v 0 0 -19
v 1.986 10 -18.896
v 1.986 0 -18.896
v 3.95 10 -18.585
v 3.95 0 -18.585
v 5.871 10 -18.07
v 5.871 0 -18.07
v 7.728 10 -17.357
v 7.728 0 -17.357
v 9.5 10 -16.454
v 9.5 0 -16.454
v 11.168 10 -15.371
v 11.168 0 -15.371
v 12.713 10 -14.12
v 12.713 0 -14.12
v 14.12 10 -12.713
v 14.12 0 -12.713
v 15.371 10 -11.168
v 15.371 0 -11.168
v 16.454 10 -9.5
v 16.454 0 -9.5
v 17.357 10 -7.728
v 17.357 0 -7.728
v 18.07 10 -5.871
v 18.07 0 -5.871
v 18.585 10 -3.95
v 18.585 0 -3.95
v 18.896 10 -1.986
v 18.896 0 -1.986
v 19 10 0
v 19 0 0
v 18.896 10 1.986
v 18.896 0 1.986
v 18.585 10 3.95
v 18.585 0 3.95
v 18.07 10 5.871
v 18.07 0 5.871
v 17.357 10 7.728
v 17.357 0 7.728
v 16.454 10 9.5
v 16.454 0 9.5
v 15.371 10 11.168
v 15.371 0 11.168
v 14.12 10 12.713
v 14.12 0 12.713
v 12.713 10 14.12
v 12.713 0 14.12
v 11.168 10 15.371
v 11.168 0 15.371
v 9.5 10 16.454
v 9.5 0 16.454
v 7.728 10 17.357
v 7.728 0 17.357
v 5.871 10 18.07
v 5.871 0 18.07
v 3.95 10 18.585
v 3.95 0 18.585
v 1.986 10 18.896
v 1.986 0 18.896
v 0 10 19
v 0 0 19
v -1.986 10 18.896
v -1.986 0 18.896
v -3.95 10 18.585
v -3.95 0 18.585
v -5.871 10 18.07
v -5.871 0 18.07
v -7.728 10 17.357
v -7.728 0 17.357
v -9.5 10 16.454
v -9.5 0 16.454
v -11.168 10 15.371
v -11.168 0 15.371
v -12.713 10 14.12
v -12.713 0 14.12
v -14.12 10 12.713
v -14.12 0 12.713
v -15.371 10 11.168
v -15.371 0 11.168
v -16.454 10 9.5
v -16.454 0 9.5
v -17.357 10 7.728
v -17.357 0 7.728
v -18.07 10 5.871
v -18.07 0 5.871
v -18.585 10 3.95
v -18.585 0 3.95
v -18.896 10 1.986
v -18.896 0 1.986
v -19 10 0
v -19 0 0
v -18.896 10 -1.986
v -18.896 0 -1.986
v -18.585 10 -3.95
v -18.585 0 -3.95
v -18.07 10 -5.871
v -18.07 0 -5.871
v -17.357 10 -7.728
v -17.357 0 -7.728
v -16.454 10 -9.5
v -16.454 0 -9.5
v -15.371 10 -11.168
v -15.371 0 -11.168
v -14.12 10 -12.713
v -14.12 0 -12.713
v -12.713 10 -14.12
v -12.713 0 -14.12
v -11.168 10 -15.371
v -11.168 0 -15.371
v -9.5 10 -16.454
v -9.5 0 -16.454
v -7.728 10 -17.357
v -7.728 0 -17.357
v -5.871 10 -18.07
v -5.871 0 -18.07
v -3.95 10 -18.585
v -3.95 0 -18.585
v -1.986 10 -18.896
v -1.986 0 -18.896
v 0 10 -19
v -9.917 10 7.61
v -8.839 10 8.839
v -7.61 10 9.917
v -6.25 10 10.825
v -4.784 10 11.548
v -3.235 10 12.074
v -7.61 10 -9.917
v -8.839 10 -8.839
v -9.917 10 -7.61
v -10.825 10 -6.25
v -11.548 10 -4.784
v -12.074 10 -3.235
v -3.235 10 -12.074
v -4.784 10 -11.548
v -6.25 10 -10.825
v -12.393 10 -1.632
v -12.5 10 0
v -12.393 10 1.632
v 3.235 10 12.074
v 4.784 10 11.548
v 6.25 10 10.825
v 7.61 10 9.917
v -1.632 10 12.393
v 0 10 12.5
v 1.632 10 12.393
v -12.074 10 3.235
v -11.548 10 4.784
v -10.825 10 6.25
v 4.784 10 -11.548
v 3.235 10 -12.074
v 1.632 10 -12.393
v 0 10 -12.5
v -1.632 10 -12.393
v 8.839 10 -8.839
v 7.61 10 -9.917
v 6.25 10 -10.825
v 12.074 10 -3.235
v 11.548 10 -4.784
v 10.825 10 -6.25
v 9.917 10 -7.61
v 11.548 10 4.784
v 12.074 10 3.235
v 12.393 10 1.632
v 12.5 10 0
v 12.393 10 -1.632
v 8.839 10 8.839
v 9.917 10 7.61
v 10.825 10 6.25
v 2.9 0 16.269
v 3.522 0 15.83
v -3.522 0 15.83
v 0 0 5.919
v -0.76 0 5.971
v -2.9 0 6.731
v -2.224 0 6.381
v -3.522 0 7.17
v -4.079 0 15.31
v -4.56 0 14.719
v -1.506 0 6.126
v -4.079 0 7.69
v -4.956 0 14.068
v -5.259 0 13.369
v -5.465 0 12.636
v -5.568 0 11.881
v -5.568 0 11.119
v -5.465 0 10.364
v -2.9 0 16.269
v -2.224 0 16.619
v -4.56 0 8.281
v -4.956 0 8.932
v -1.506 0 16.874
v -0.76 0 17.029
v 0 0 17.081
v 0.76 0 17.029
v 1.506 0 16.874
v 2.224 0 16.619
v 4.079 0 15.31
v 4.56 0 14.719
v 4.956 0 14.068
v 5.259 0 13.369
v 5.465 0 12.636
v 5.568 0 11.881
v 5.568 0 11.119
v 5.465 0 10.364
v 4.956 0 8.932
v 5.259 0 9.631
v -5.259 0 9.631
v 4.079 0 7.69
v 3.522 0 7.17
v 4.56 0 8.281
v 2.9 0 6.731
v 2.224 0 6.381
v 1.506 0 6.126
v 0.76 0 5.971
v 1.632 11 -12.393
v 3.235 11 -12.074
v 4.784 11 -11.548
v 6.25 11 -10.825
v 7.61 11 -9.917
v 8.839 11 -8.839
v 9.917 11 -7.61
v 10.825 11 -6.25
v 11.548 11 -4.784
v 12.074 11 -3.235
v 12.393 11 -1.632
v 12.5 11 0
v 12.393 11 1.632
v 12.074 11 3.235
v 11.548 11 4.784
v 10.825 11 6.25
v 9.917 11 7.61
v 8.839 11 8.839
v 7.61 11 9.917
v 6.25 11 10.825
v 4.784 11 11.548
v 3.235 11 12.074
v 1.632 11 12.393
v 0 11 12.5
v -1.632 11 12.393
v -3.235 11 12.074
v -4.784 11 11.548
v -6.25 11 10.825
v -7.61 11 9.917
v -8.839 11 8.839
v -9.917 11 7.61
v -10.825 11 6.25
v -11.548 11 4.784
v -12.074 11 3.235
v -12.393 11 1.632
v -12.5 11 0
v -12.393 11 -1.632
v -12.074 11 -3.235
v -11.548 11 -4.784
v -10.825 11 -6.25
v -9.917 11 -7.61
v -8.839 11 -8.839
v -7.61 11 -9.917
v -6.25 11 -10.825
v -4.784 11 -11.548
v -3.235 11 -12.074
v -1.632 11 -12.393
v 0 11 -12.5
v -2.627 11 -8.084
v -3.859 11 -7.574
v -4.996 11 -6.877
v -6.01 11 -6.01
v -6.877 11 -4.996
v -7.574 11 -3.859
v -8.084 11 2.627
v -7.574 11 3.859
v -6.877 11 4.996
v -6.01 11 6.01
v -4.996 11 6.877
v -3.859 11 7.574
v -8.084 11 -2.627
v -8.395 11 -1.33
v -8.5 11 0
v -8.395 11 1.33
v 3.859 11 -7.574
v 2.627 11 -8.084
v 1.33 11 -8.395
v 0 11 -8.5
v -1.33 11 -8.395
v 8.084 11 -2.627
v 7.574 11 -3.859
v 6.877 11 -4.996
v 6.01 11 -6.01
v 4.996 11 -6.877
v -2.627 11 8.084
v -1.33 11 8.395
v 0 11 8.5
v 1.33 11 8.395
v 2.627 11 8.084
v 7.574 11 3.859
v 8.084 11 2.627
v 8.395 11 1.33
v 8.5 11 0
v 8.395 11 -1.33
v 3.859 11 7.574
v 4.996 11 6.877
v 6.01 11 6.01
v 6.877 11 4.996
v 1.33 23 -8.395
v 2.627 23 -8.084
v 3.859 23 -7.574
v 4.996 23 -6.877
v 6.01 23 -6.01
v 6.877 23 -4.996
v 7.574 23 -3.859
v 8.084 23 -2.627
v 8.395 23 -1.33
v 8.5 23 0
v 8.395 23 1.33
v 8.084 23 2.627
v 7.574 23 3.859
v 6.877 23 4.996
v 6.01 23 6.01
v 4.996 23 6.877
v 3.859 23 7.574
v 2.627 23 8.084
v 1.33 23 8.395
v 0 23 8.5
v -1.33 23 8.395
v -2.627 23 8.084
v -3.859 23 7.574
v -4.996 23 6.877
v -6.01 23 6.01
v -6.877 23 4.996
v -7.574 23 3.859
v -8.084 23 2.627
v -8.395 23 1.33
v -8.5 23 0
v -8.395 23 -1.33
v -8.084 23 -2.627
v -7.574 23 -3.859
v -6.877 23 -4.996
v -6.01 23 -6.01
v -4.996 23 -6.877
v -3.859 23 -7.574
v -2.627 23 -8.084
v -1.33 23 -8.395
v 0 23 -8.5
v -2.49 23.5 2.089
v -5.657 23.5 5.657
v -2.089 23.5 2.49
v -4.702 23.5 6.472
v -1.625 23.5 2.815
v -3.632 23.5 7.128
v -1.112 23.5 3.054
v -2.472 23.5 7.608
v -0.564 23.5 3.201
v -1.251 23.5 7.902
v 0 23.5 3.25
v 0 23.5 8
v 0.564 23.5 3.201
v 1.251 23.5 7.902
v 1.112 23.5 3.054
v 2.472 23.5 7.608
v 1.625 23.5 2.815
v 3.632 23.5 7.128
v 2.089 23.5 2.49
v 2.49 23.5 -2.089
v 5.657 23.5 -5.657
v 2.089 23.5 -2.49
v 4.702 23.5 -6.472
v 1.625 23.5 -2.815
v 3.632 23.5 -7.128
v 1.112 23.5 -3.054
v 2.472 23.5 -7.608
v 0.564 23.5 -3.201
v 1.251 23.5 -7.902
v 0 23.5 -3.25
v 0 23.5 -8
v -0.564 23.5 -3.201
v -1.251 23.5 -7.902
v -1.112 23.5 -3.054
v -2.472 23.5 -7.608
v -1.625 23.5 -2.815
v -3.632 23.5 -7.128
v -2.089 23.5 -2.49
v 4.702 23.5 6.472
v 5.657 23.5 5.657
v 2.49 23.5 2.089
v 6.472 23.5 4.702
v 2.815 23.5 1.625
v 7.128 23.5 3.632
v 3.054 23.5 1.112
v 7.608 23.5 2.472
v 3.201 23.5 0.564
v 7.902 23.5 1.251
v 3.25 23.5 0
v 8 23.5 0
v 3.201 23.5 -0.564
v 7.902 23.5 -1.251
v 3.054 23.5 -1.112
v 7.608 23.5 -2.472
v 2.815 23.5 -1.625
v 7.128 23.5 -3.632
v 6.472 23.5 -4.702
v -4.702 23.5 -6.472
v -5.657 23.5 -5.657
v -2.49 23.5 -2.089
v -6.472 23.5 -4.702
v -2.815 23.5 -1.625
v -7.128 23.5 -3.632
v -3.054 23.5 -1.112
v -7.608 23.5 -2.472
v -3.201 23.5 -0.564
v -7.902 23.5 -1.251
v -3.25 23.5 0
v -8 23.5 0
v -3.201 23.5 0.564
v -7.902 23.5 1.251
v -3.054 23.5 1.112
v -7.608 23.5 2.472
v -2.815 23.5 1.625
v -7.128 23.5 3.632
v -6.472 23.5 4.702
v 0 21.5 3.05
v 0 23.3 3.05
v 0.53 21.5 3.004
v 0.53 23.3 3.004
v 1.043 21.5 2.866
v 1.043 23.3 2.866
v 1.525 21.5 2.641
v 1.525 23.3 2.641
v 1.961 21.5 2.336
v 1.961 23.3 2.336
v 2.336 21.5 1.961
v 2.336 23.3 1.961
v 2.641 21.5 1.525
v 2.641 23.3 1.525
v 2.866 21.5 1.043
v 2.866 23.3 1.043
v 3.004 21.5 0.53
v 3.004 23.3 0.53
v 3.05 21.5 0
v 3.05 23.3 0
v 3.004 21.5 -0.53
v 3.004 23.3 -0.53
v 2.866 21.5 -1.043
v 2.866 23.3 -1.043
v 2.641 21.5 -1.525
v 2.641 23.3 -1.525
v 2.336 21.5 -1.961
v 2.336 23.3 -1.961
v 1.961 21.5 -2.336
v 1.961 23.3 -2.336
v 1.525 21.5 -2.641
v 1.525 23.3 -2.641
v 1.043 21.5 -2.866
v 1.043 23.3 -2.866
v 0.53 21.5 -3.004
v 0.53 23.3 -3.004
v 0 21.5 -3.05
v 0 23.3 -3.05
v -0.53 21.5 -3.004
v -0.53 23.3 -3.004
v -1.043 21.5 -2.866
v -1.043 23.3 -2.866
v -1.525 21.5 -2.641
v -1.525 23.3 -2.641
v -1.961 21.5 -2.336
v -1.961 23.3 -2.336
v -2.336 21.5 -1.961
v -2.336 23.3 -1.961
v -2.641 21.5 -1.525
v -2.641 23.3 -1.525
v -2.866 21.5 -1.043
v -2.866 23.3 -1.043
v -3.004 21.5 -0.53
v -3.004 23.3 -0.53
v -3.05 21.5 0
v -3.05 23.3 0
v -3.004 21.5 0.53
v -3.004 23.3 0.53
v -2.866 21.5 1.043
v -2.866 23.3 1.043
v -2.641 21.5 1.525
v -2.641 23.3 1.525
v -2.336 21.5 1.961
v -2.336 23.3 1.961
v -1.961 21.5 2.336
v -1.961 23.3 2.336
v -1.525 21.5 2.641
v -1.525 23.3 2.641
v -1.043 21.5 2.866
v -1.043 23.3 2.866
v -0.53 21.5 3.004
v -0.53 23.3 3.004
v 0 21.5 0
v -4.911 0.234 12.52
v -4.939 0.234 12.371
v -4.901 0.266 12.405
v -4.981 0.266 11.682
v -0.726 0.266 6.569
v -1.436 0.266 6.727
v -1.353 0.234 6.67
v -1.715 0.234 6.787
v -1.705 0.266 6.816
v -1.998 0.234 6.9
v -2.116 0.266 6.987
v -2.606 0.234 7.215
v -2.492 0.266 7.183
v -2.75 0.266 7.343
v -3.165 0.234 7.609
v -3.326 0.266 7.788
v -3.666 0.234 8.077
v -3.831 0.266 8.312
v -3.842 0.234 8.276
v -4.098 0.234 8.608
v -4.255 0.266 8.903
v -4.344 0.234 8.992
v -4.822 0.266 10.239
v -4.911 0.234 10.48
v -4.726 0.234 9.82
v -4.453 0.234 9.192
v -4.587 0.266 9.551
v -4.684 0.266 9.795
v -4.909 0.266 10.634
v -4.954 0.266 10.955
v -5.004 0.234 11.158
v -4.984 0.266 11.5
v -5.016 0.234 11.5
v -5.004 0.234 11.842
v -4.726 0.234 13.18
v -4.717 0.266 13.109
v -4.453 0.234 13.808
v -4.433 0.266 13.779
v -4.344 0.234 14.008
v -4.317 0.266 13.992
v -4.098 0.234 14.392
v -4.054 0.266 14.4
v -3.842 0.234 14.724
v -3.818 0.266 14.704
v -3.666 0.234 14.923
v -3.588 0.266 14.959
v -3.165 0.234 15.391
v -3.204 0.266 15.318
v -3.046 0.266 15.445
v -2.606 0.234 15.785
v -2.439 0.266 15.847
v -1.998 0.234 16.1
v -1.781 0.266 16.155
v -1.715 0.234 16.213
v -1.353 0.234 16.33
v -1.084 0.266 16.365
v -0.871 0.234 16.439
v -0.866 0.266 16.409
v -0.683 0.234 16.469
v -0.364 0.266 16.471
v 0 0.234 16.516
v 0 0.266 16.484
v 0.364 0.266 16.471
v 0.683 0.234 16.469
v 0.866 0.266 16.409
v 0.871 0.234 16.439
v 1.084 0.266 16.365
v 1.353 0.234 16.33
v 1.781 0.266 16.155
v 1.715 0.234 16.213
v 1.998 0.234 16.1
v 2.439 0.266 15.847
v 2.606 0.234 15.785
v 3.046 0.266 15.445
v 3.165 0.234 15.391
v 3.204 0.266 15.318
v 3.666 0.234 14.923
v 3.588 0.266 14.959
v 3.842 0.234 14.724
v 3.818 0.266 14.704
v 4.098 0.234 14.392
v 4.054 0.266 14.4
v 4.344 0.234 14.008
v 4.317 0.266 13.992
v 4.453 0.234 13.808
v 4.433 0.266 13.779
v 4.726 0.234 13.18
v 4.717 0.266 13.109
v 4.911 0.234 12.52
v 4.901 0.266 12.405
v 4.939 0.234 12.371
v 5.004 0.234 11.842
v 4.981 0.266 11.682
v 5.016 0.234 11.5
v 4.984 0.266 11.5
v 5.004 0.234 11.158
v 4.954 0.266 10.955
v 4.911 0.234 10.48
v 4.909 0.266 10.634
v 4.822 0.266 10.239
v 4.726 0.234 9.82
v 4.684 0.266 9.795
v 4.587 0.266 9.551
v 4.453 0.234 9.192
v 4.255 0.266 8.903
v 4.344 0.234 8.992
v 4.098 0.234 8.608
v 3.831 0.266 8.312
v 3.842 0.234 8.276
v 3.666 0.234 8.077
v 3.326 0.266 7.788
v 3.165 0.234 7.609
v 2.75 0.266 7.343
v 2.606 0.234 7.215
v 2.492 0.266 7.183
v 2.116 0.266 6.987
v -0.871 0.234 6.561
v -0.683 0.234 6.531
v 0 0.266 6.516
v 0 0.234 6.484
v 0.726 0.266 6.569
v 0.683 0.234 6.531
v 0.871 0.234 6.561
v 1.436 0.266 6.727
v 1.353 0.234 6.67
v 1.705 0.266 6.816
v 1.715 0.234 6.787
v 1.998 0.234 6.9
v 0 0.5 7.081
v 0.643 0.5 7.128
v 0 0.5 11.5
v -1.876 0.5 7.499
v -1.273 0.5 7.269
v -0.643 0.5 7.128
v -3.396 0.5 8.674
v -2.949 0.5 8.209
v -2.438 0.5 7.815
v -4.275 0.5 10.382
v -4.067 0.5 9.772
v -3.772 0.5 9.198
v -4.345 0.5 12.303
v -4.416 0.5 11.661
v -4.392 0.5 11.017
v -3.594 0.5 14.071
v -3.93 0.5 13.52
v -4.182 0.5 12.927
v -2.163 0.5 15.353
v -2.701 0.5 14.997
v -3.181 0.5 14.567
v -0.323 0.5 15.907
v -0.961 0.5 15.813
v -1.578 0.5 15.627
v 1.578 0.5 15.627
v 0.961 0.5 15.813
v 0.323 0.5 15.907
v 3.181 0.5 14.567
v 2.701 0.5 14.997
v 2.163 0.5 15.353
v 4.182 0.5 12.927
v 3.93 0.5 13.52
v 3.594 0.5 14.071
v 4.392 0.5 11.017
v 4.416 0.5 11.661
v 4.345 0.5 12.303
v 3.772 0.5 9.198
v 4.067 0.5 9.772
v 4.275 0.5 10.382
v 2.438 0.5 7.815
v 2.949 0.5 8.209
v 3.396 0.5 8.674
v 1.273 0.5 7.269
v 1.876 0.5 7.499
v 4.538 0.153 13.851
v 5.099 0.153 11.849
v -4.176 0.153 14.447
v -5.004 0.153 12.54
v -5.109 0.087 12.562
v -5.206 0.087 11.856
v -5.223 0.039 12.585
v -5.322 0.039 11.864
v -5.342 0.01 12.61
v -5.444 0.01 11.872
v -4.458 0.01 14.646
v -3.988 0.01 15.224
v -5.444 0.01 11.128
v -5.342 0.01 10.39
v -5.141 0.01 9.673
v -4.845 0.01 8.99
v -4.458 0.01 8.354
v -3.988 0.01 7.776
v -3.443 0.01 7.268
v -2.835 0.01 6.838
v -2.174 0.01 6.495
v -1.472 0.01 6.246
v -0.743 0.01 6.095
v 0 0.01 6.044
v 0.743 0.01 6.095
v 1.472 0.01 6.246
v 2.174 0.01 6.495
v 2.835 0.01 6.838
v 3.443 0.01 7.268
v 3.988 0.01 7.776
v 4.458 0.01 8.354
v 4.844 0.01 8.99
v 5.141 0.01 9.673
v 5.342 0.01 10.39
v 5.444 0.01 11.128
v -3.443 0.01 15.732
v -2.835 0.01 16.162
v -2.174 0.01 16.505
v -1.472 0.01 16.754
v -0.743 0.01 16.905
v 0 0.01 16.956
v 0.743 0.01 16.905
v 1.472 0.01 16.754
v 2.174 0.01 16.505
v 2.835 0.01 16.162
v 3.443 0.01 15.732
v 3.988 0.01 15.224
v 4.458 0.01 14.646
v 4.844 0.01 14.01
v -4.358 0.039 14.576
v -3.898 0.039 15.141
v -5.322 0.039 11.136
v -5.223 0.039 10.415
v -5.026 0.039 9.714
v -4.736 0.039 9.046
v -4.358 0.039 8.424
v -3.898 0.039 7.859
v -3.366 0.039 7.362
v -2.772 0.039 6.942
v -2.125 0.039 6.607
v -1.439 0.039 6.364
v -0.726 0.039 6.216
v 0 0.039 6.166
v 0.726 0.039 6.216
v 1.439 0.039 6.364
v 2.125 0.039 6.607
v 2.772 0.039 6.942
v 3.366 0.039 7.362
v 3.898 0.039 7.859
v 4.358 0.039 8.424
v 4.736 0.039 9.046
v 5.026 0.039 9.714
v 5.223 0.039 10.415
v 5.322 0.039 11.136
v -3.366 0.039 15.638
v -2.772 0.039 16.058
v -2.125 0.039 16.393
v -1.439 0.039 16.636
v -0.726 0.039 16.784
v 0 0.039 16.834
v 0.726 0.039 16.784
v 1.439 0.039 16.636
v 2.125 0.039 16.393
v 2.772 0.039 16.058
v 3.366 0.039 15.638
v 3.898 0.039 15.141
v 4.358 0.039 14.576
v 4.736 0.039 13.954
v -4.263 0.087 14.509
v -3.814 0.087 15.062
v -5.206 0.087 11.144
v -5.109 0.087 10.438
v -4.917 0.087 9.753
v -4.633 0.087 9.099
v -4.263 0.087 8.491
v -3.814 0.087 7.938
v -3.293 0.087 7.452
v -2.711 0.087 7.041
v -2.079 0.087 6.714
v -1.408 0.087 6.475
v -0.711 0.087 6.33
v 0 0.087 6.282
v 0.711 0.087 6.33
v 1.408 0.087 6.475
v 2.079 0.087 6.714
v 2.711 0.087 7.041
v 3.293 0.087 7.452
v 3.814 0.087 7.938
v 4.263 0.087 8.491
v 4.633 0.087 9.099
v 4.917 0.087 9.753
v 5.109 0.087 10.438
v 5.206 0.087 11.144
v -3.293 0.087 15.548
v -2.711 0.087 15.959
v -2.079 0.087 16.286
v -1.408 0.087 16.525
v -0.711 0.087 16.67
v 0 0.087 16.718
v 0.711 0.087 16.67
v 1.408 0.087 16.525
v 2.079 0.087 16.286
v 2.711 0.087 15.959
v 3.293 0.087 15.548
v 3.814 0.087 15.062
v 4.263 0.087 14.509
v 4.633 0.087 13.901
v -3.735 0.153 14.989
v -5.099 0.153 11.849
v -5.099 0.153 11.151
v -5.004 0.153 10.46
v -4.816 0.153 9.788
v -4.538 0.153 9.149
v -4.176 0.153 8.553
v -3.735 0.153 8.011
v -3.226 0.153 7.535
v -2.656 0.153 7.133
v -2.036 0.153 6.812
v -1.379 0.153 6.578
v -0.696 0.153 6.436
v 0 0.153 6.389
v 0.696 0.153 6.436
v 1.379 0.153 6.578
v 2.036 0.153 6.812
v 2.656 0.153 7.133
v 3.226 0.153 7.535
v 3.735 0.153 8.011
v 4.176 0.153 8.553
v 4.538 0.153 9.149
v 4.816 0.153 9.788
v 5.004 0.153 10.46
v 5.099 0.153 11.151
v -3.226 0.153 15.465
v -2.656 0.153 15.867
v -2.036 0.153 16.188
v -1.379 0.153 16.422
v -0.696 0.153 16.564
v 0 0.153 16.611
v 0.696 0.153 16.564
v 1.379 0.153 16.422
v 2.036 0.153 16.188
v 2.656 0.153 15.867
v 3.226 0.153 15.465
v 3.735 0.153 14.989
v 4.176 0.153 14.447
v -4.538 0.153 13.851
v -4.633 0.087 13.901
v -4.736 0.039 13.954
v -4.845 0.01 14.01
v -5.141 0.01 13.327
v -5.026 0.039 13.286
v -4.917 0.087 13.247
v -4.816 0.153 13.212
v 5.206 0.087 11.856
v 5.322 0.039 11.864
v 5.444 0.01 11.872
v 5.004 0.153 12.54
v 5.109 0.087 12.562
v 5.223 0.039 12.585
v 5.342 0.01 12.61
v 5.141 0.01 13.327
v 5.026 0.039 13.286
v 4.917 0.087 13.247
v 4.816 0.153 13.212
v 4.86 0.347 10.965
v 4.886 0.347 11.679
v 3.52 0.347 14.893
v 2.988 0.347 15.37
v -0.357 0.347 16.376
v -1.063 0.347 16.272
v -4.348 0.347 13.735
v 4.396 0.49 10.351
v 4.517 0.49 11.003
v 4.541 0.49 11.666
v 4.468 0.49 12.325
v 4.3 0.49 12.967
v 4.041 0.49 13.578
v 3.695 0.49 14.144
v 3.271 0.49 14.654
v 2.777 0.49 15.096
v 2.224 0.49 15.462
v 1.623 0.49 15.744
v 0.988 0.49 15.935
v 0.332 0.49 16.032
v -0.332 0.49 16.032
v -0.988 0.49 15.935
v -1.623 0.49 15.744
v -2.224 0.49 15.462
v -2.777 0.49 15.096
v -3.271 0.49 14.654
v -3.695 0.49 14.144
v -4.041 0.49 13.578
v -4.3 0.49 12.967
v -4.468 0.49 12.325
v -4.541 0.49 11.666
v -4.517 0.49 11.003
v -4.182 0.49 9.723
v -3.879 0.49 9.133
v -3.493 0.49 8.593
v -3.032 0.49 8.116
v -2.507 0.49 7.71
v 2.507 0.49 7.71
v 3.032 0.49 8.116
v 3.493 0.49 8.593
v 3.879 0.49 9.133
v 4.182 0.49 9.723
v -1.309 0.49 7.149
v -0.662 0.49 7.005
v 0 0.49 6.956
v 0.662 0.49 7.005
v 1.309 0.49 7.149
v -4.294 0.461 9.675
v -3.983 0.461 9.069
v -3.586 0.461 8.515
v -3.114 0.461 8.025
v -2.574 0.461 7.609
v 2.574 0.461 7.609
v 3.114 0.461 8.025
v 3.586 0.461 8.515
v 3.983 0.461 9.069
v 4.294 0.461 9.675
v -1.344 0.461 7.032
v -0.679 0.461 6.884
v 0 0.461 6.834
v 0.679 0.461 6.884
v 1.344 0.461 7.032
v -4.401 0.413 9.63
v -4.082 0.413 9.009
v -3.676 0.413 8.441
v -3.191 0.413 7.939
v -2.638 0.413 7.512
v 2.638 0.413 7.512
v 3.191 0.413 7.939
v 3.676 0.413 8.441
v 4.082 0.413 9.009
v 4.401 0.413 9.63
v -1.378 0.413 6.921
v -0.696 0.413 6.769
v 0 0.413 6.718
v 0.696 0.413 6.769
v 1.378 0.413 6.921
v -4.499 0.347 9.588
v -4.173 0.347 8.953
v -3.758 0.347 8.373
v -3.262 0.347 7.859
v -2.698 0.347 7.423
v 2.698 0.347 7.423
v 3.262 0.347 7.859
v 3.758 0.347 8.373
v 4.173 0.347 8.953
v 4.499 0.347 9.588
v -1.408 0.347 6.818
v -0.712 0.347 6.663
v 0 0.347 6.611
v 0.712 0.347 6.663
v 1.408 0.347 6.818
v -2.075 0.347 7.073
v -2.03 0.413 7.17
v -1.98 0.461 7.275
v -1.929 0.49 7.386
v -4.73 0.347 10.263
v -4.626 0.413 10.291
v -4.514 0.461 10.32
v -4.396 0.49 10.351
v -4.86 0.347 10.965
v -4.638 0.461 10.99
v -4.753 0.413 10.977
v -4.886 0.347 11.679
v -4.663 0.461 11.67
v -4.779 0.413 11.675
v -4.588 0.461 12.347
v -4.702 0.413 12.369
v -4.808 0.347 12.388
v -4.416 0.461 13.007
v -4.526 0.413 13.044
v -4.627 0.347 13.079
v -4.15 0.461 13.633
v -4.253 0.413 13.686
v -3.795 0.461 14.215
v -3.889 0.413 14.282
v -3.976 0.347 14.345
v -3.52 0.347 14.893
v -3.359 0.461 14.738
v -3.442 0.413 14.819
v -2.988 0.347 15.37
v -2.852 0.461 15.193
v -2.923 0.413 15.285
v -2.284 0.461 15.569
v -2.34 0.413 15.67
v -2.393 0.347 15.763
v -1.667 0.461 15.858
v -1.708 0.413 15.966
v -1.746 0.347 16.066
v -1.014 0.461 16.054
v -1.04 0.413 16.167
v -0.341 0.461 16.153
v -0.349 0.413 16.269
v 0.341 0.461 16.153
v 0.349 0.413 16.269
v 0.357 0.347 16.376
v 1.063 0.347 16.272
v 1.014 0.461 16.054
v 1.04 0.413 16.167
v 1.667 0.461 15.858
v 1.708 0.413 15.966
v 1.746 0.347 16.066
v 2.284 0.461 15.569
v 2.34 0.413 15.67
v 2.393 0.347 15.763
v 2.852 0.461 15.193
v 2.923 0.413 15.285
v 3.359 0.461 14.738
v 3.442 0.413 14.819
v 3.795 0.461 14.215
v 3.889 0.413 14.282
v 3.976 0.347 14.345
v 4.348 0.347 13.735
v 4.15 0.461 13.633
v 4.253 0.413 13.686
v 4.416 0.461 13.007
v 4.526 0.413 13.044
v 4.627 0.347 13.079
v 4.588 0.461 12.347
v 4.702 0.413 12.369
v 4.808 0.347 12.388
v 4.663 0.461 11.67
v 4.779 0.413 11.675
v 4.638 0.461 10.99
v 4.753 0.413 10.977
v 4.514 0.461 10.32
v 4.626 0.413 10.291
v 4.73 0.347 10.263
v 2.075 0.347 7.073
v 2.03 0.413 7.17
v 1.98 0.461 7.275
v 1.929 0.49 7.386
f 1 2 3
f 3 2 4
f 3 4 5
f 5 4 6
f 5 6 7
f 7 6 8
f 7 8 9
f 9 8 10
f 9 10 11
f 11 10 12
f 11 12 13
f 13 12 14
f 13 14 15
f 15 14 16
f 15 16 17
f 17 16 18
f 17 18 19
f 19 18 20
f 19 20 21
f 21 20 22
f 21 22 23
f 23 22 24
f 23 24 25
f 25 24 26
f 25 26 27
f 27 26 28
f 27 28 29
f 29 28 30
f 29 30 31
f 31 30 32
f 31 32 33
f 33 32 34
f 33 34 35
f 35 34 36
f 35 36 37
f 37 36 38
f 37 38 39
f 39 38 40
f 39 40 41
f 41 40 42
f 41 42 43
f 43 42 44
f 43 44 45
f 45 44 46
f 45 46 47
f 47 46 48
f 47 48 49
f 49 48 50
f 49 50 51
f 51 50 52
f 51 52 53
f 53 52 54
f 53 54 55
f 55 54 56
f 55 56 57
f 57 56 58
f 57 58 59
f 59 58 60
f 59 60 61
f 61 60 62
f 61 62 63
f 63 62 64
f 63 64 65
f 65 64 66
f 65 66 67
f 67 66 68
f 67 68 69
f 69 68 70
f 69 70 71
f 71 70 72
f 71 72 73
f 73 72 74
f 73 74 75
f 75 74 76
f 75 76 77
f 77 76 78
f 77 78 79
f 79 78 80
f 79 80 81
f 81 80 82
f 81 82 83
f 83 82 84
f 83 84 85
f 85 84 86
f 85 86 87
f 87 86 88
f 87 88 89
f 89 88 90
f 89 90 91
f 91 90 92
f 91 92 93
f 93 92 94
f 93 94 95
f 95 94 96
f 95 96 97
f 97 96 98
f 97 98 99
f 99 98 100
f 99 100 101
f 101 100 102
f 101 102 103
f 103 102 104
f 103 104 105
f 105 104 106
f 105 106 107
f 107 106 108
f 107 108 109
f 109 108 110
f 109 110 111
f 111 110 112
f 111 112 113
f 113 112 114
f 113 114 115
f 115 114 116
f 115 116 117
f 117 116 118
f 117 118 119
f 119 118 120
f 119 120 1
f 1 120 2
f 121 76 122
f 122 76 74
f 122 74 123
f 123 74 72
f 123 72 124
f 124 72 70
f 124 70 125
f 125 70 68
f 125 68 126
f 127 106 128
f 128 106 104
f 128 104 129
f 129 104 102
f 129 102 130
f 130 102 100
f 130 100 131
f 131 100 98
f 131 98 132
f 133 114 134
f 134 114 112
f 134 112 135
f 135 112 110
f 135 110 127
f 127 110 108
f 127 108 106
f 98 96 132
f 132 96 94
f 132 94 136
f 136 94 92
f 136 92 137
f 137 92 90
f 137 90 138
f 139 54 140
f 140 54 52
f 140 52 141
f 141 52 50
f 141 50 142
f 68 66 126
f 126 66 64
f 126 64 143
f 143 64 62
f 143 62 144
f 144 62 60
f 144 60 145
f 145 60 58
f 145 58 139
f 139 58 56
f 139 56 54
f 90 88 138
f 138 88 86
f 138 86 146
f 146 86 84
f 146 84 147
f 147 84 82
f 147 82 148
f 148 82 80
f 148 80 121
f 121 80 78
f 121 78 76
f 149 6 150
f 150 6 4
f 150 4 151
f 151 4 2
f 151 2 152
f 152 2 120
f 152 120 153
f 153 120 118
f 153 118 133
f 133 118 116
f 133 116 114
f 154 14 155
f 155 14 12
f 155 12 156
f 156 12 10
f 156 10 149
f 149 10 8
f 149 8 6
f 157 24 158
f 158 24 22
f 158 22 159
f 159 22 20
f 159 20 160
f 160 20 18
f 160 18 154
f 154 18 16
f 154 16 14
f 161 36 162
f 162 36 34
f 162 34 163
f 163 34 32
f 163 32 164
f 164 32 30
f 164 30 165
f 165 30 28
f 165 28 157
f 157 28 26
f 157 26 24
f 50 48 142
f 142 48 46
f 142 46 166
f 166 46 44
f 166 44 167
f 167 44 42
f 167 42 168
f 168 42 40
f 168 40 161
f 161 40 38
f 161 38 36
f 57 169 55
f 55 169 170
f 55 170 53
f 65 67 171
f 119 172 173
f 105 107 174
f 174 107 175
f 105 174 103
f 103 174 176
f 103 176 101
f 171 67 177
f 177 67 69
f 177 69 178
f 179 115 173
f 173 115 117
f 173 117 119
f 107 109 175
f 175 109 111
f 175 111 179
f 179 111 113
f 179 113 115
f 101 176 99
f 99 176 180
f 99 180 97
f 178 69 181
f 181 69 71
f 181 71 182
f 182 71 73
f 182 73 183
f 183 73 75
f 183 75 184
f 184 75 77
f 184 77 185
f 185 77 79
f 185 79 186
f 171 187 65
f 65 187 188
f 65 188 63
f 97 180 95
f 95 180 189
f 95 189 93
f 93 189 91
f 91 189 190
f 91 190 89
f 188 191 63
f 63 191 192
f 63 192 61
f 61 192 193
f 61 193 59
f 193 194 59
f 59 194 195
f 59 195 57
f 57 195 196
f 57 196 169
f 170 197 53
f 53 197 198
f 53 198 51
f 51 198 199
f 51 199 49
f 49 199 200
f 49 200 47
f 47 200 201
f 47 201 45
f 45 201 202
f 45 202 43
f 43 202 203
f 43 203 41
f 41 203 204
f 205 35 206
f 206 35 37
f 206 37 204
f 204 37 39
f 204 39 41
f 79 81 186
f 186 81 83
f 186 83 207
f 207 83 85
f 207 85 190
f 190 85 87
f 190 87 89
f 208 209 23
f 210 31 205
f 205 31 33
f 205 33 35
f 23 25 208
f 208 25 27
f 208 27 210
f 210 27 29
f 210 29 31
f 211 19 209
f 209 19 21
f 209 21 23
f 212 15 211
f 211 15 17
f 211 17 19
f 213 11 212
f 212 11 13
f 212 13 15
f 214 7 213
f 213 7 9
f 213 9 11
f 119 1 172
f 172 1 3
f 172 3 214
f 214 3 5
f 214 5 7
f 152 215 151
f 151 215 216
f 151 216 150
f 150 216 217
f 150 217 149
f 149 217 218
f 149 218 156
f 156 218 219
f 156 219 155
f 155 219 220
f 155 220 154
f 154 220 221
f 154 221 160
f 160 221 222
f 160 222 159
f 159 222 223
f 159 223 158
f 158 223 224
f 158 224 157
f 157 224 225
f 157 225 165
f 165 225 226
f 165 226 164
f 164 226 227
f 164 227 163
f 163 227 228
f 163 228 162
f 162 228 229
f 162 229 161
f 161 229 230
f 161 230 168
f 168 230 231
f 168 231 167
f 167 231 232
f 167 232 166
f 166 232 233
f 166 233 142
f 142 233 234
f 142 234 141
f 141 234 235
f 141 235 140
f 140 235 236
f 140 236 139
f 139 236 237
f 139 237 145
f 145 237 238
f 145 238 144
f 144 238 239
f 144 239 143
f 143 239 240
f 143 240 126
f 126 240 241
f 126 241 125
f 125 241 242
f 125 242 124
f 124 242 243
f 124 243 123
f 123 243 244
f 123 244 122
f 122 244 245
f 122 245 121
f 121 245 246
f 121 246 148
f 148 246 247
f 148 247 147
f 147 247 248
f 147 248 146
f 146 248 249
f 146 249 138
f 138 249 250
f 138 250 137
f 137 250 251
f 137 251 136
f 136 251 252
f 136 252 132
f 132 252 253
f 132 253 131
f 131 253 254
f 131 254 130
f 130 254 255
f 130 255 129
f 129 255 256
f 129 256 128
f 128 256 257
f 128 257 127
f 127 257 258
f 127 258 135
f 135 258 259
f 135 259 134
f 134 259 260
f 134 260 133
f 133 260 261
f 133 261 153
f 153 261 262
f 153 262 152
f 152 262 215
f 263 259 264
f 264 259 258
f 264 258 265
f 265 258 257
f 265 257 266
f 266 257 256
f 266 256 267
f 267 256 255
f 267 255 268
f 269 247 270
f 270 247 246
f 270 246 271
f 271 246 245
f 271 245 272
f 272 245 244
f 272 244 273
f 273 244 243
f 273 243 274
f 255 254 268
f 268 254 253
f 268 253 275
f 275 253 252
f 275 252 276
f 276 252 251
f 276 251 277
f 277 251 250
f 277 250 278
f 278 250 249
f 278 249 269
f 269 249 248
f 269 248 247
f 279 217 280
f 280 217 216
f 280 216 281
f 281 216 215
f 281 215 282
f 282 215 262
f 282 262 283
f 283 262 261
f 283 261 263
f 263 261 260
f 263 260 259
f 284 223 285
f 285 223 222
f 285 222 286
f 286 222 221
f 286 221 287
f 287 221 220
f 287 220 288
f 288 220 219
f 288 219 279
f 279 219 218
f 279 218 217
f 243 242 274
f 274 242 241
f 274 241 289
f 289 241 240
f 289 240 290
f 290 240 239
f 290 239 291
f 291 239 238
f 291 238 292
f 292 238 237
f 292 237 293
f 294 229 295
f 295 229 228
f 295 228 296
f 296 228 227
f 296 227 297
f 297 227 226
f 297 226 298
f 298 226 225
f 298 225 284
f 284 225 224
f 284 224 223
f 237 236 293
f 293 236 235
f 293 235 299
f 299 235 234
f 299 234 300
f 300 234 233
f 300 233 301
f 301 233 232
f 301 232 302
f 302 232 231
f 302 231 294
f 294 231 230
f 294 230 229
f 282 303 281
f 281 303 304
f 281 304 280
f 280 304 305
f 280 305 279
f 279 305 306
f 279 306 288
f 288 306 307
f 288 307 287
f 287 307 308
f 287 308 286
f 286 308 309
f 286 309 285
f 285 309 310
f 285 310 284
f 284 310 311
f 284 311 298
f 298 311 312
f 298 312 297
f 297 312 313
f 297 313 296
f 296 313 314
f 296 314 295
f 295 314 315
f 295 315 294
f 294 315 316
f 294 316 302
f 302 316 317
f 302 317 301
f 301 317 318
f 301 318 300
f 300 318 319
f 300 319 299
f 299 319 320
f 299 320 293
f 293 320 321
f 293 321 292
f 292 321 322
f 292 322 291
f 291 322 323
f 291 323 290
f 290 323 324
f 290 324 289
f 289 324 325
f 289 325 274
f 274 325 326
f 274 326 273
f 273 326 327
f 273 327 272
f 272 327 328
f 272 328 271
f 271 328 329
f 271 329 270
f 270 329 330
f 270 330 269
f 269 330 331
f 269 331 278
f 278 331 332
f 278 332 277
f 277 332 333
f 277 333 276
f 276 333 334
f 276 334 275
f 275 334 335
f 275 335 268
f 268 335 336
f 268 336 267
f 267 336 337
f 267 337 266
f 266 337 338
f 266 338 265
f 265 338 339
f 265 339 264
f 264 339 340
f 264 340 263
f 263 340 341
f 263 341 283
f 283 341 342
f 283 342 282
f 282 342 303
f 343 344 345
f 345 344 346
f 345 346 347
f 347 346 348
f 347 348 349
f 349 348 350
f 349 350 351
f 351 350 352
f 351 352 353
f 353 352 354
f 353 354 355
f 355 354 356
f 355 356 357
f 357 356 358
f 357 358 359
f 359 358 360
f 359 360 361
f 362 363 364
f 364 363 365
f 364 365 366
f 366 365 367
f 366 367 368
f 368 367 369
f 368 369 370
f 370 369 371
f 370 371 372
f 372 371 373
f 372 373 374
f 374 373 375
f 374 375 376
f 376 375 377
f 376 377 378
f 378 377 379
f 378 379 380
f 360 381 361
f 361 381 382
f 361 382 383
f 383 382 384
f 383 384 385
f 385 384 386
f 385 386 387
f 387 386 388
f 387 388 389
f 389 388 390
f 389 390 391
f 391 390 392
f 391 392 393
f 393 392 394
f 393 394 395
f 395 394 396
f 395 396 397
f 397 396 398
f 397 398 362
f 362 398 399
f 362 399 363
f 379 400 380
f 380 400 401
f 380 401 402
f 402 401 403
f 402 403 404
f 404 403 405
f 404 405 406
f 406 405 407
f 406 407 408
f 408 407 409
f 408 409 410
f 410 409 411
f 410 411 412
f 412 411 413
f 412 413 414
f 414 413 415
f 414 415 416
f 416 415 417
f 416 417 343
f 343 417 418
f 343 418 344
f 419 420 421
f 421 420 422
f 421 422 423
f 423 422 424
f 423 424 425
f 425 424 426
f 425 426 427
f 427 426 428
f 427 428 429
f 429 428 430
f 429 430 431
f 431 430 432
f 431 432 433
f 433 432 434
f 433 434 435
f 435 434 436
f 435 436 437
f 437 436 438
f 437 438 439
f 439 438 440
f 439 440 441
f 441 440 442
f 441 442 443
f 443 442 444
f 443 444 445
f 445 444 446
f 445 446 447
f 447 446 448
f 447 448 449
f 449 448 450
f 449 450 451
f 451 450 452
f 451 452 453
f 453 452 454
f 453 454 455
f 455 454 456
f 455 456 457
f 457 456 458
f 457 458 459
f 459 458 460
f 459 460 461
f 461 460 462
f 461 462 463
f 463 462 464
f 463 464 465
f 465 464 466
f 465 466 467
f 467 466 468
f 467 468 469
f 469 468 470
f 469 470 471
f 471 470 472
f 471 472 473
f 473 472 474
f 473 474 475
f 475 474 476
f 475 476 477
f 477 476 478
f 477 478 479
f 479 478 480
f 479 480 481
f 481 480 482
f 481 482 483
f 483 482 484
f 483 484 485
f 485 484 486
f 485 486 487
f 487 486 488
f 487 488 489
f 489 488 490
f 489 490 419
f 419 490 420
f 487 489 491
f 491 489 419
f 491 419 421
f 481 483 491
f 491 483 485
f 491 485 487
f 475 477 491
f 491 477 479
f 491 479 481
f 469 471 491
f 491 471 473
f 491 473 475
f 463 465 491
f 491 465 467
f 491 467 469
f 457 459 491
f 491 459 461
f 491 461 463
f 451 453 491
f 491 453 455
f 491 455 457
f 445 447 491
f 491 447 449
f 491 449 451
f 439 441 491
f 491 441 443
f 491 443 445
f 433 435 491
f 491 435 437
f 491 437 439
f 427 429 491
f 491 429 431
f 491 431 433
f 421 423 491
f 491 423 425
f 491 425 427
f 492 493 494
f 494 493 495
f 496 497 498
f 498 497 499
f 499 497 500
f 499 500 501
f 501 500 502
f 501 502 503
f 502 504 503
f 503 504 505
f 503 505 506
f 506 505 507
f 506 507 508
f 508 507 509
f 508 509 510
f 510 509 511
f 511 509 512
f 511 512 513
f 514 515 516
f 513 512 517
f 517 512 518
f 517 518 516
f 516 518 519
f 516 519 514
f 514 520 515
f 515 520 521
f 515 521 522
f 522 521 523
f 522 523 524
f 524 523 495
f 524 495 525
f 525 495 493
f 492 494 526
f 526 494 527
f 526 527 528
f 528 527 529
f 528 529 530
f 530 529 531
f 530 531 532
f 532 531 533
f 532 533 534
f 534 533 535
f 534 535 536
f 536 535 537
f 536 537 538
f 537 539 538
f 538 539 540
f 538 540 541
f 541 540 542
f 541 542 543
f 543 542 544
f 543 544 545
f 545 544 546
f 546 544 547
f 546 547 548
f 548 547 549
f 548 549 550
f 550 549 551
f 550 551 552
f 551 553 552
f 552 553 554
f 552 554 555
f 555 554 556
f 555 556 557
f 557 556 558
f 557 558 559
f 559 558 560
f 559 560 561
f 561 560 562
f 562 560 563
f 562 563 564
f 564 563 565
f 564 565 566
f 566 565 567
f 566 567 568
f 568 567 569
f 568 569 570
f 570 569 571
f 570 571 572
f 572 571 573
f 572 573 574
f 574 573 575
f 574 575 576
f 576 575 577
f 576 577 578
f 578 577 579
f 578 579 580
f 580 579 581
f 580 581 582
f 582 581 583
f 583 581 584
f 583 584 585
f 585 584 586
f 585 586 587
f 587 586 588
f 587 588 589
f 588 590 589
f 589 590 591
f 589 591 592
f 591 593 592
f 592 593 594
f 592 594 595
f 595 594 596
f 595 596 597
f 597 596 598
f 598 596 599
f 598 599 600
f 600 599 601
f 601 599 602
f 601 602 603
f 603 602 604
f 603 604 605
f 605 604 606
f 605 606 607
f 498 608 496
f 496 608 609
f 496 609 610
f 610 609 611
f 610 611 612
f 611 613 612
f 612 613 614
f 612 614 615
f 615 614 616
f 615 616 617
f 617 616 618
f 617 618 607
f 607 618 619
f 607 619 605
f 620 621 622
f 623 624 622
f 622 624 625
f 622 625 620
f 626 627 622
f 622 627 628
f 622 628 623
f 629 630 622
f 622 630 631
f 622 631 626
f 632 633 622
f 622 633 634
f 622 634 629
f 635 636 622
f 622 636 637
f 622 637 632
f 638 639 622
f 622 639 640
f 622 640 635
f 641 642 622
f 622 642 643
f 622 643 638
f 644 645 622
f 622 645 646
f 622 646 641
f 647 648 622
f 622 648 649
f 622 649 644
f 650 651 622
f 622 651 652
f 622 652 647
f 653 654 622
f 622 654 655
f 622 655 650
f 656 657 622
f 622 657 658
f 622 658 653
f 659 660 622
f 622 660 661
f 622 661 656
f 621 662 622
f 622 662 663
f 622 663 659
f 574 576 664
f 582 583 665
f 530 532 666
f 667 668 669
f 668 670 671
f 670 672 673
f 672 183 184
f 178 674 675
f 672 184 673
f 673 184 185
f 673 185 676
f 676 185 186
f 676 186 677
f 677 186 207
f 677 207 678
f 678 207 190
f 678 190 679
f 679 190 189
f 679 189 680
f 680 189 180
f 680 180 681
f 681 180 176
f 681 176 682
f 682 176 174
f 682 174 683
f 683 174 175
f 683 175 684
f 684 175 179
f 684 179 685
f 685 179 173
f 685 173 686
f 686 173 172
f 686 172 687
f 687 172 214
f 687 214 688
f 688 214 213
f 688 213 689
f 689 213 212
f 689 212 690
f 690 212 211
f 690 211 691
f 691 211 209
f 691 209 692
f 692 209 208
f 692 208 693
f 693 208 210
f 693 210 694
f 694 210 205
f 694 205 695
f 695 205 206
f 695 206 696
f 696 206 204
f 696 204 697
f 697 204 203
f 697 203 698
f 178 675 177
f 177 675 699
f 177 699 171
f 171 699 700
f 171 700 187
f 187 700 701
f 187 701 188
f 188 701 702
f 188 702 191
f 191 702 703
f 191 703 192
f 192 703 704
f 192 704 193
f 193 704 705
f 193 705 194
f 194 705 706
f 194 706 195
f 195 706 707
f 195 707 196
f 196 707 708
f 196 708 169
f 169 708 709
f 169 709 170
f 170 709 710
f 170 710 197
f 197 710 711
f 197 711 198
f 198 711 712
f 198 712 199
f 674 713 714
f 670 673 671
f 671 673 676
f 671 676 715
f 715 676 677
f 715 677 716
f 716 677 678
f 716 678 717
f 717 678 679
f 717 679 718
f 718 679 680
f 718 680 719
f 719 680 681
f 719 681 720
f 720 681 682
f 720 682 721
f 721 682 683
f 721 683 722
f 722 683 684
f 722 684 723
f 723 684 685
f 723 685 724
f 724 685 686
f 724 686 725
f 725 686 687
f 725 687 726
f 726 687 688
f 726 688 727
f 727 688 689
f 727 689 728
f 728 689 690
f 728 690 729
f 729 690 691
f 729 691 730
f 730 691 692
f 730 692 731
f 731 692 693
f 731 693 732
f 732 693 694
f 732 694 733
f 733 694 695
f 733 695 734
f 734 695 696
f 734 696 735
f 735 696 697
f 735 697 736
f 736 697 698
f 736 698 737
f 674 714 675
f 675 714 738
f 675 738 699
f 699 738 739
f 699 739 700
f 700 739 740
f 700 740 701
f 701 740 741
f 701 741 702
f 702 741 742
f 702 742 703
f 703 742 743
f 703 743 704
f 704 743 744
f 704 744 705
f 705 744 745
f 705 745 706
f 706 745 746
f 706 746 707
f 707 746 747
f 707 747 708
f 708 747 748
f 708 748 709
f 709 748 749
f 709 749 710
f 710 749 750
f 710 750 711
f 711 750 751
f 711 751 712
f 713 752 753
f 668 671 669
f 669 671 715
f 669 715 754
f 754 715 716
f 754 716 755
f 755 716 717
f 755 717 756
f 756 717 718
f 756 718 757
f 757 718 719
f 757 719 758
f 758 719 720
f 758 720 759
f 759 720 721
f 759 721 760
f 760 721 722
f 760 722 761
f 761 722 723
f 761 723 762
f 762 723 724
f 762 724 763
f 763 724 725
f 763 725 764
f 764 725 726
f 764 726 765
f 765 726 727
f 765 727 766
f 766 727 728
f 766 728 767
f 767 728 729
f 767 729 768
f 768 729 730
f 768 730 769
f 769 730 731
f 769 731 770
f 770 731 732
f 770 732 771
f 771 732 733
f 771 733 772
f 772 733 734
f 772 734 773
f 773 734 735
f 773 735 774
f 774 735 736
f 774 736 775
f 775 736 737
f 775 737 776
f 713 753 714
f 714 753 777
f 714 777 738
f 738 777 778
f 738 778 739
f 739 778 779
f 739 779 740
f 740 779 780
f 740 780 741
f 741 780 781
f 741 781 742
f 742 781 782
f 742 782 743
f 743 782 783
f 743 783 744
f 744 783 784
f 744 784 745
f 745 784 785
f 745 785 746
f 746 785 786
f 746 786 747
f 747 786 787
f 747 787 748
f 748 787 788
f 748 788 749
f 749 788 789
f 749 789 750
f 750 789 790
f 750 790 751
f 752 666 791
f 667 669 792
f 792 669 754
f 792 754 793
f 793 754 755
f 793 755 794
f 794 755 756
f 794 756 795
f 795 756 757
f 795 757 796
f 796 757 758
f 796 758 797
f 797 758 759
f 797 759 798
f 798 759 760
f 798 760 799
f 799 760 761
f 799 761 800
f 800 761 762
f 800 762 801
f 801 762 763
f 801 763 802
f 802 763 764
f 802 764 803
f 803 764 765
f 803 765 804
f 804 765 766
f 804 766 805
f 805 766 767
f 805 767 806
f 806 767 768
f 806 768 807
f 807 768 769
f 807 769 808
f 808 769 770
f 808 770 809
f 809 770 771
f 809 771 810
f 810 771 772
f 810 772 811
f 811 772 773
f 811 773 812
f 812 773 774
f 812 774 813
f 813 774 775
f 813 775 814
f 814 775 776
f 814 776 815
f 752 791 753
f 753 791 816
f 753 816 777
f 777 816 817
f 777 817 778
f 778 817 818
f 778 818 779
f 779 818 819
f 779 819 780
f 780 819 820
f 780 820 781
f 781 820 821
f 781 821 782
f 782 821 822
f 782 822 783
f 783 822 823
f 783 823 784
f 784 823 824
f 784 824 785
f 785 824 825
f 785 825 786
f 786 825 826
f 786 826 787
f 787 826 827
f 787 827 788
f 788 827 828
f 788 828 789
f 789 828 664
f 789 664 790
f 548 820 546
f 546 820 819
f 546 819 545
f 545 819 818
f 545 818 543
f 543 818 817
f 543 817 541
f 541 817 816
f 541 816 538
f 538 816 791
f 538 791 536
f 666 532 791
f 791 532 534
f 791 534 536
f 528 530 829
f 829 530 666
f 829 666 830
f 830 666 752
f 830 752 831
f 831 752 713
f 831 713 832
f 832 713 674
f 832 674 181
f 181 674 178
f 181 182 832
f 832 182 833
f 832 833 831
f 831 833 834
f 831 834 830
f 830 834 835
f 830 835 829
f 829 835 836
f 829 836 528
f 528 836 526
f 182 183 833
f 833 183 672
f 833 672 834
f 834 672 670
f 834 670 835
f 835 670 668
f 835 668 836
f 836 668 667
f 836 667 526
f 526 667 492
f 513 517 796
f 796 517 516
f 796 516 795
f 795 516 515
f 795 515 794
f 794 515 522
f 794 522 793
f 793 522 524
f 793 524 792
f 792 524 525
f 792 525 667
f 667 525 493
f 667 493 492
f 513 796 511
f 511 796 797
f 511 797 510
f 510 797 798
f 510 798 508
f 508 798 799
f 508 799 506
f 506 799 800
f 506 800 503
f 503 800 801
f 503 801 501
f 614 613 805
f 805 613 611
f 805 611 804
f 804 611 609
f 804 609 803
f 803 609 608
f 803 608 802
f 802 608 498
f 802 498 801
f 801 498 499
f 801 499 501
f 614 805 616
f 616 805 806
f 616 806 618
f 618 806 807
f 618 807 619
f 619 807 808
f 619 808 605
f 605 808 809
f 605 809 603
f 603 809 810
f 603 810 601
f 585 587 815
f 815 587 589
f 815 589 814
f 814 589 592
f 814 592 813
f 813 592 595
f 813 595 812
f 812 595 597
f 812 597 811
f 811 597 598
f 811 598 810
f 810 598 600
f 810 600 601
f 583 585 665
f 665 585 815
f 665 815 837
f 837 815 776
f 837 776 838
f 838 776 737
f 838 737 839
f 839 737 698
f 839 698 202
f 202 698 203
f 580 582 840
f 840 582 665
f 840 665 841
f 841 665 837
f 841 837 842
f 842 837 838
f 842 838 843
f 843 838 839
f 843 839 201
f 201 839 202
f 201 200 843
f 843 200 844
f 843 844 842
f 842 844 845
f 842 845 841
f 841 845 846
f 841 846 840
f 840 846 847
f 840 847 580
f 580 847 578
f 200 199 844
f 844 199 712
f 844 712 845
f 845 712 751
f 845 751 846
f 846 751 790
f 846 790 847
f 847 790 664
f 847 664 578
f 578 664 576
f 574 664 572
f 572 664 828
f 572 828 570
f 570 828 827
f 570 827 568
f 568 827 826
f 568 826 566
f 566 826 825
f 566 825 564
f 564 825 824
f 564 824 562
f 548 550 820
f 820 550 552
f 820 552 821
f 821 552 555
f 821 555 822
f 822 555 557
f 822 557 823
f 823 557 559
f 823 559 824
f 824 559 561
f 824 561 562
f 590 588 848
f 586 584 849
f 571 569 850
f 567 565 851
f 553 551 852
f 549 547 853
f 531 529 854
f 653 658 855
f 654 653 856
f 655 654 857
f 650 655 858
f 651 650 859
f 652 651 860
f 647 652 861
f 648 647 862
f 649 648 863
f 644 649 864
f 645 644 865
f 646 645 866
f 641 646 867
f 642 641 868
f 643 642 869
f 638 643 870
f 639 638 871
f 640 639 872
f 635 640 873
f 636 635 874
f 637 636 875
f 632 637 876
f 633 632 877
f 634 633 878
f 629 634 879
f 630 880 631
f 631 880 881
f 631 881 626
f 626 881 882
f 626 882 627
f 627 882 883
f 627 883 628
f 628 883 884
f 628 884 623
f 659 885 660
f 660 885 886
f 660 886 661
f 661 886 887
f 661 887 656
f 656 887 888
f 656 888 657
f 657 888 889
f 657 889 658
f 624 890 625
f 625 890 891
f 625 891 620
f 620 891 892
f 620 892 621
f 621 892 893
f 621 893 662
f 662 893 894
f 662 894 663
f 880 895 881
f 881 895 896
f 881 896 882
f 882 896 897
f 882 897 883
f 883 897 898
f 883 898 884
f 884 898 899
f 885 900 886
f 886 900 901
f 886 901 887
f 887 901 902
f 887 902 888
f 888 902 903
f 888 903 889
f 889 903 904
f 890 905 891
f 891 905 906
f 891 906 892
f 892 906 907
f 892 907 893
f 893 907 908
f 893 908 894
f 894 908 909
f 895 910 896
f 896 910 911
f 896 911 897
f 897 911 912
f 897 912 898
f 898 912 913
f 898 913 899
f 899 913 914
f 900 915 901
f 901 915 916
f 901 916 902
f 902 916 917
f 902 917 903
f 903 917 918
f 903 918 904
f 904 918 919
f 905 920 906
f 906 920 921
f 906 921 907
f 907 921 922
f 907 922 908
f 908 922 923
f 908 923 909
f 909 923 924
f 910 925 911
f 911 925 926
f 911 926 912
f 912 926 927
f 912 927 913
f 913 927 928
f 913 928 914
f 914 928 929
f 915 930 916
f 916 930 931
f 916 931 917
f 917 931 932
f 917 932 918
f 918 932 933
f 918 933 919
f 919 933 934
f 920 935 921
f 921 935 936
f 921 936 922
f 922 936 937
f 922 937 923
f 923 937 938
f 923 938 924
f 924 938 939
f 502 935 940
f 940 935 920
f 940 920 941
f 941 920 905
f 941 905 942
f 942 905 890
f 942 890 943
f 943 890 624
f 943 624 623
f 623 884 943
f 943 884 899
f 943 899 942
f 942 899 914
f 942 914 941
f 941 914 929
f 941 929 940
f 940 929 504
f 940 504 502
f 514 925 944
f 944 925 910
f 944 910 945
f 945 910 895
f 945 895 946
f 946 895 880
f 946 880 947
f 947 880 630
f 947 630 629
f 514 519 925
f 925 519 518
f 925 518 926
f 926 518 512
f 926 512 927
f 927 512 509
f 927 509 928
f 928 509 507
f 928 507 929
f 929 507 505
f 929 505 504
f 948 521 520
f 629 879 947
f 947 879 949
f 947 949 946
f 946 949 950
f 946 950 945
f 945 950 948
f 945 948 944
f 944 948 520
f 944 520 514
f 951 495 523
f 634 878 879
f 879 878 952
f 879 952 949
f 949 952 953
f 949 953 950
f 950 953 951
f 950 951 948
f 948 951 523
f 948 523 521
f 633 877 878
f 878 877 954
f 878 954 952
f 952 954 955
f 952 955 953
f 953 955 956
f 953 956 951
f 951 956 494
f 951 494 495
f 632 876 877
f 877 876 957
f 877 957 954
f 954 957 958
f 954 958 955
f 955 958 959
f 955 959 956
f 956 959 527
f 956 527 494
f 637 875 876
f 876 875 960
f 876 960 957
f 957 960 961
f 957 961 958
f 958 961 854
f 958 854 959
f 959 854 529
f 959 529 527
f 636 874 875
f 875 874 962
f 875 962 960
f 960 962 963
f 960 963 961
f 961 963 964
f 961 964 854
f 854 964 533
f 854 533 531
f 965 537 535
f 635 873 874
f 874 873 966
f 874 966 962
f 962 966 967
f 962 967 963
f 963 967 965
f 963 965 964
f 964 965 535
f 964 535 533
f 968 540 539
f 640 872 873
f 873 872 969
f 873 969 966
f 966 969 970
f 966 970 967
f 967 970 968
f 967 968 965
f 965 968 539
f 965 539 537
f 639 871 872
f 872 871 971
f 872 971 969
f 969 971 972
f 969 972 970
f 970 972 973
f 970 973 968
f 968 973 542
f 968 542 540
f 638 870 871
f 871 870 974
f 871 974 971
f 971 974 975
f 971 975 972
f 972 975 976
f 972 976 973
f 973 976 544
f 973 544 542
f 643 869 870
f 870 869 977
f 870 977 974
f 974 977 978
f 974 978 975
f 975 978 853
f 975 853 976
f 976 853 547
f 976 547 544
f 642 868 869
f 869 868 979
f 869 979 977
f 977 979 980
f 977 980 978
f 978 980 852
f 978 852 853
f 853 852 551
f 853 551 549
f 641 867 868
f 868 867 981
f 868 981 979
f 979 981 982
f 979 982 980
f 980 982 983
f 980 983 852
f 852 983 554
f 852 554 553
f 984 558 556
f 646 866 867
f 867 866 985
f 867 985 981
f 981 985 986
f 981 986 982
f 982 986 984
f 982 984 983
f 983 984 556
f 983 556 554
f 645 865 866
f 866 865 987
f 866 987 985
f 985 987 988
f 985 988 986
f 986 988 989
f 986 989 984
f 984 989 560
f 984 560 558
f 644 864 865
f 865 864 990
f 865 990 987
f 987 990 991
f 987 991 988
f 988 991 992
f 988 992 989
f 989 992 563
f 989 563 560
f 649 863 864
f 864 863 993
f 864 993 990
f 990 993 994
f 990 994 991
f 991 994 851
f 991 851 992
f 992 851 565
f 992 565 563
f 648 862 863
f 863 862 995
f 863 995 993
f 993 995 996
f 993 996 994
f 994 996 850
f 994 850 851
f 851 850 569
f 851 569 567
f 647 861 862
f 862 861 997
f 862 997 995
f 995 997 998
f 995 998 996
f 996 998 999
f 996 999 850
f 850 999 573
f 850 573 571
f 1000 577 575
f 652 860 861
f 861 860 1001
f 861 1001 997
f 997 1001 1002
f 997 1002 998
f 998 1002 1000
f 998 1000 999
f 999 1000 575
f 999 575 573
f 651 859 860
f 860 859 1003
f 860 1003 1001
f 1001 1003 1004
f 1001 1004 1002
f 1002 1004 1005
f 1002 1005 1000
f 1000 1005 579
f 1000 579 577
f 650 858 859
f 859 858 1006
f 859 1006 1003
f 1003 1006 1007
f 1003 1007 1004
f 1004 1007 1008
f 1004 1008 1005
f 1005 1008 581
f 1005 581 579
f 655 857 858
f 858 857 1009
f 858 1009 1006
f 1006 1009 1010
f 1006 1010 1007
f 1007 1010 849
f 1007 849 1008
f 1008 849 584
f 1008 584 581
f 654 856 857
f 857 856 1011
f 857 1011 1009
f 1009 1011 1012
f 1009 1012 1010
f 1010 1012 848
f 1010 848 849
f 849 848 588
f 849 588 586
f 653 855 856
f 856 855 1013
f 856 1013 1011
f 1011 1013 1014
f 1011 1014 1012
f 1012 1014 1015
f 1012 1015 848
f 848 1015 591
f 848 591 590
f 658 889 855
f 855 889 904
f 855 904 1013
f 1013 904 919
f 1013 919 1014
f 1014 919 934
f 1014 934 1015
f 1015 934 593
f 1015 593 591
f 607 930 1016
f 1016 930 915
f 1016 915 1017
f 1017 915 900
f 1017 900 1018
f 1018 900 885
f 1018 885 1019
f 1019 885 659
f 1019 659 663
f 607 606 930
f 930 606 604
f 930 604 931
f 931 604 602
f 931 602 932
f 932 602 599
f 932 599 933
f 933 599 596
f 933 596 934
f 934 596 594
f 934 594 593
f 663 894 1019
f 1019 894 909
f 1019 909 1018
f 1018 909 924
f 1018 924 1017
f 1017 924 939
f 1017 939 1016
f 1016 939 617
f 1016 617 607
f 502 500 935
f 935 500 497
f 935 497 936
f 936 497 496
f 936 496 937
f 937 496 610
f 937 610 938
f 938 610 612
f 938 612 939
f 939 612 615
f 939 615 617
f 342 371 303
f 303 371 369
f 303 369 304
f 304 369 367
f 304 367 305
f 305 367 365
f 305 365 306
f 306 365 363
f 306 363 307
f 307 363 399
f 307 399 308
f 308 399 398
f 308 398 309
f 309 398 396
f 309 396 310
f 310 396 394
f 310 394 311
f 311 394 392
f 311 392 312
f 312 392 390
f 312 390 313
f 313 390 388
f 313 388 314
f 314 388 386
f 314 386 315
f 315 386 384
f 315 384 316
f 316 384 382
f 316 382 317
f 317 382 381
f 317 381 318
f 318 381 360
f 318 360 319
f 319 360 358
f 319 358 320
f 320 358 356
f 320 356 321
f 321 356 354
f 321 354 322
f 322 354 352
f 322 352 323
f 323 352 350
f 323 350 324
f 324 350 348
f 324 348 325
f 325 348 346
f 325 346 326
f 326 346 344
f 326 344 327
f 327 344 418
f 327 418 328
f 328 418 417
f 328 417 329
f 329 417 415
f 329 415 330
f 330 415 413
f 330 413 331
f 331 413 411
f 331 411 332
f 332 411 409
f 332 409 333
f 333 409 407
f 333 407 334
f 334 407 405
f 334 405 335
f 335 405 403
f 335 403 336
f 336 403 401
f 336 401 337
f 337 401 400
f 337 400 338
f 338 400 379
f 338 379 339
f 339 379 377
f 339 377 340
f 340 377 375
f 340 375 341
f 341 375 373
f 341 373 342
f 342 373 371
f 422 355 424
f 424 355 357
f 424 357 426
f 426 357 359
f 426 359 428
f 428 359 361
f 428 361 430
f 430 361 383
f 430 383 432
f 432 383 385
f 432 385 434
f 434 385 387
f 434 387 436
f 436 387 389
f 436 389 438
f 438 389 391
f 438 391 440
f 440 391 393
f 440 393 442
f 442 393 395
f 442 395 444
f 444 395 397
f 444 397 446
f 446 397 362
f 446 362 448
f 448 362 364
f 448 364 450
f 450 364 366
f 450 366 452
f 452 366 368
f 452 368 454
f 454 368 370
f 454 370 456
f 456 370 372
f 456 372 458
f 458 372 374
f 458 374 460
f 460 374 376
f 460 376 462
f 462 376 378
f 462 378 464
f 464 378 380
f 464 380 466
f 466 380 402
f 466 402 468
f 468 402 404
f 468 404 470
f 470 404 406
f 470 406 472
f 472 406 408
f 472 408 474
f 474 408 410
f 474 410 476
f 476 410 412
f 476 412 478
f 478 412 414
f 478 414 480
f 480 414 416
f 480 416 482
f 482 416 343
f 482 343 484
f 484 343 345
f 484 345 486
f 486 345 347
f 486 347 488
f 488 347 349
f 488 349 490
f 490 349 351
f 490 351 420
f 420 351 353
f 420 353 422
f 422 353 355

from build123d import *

# Parameters (mm, degrees)
SKETCH_1_R          = 19
EXTRUDE_1_DEPTH     = 10
SKETCH_2_R          = 12.5
EXTRUDE_2_DEPTH     = 1
SKETCH_3_R          = 8.5
EXTRUDE_3_DEPTH     = 12.5
SKETCH_4_R          = 3.05
CUT_EXTRUDE_4_DEPTH = 2
SKETCH_7_R          = 5.25
CUT_EXTRUDE_3_DEPTH = 0.5
CUT_EXTRUDE_3_DRAFT = -45
FILLET_3_R          = 0.8
CHAMFER_1_SIZE      = 0.5
CHAMFER_2_SIZE      = 0.2


with BuildPart() as part:
    # Эскиз1 → Бобышка-Вытянуть1 (new body)
    with BuildSketch(Plane(origin=(0, 0, 0), x_dir=(1, 0, 0), z_dir=(0, 1, 0))):
        with Locations(Location((0, 0, 0), (0, 0, 270))):
            Circle(SKETCH_1_R)
    extrude(amount=EXTRUDE_1_DEPTH)

    # Эскиз2 → Бобышка-Вытянуть2 (add)
    with BuildSketch(Plane(origin=(0, 10, 0), x_dir=(1, 0, 0), z_dir=(0, 1, 0))):
        with Locations(Location((0, 0, 0), (0, 0, 270))):
            Circle(SKETCH_2_R)
    extrude(amount=EXTRUDE_2_DEPTH)

    # Эскиз3 → Бобышка-Вытянуть3 (add)
    with BuildSketch(Plane(origin=(0, 11, 0), x_dir=(1, 0, 0), z_dir=(0, 1, 0))):
        with Locations(Location((0, 0, 0), (0, 0, 270))):
            Circle(SKETCH_3_R)
    extrude(amount=EXTRUDE_3_DEPTH)

    # Эскиз4 → Вырез-Вытянуть4 (cut)
    with BuildSketch(Plane(origin=(0, 23.5, 0), x_dir=(1, 0, 0), z_dir=(0, 1, 0))):
        with Locations(Location((0, 0, 0), (0, 0, 270))):
            Circle(SKETCH_4_R)
    extrude(amount=-CUT_EXTRUDE_4_DEPTH, mode=Mode.SUBTRACT)


with BuildPart() as cut_extrude_3_tool:
    # Эскиз7 → Вырез-Вытянуть3 (with draft: the straight prism first)
    with BuildSketch(Plane.XZ):
        with Locations((0, 11.5)):
            Circle(SKETCH_7_R)
    extrude(amount=-CUT_EXTRUDE_3_DEPTH)
    # Вырез-Вытянуть3: the draft: its side faces are tilted about the plane it starts from
    cut_extrude_3_sides = [cut_extrude_3_tool.faces().sort_by_distance(p)[0] for p in [
        (-5.25, 0.25, 11.5),
    ]]
    draft(cut_extrude_3_sides, Plane.XZ, CUT_EXTRUDE_3_DRAFT)


with BuildPart() as part_1:
    add(part.part)

    # Вырез-Вытянуть3: cut by cut_extrude_3_tool
    add(cut_extrude_3_tool.part, mode=Mode.SUBTRACT)

    # Скругление3
    fillet_3_edges = [part_1.edges().sort_by_distance(p)[0] for p in [
        (-4.75, 0.5, 11.5),
        (-5.25, 0, 11.5),
    ]]
    fillet(fillet_3_edges, radius=FILLET_3_R)

    # Фаска1
    chamfer_1_edges = [part_1.edges().sort_by_distance(p)[0] for p in [
        (0, 23.5, -8.5),
    ]]
    chamfer(chamfer_1_edges, length=CHAMFER_1_SIZE)

    # Фаска2
    chamfer_2_edges = [part_1.edges().sort_by_distance(p)[0] for p in [
        (0, 23.5, -3.05),
    ]]
    chamfer(chamfer_2_edges, length=CHAMFER_2_SIZE)


solid = part_1.part
